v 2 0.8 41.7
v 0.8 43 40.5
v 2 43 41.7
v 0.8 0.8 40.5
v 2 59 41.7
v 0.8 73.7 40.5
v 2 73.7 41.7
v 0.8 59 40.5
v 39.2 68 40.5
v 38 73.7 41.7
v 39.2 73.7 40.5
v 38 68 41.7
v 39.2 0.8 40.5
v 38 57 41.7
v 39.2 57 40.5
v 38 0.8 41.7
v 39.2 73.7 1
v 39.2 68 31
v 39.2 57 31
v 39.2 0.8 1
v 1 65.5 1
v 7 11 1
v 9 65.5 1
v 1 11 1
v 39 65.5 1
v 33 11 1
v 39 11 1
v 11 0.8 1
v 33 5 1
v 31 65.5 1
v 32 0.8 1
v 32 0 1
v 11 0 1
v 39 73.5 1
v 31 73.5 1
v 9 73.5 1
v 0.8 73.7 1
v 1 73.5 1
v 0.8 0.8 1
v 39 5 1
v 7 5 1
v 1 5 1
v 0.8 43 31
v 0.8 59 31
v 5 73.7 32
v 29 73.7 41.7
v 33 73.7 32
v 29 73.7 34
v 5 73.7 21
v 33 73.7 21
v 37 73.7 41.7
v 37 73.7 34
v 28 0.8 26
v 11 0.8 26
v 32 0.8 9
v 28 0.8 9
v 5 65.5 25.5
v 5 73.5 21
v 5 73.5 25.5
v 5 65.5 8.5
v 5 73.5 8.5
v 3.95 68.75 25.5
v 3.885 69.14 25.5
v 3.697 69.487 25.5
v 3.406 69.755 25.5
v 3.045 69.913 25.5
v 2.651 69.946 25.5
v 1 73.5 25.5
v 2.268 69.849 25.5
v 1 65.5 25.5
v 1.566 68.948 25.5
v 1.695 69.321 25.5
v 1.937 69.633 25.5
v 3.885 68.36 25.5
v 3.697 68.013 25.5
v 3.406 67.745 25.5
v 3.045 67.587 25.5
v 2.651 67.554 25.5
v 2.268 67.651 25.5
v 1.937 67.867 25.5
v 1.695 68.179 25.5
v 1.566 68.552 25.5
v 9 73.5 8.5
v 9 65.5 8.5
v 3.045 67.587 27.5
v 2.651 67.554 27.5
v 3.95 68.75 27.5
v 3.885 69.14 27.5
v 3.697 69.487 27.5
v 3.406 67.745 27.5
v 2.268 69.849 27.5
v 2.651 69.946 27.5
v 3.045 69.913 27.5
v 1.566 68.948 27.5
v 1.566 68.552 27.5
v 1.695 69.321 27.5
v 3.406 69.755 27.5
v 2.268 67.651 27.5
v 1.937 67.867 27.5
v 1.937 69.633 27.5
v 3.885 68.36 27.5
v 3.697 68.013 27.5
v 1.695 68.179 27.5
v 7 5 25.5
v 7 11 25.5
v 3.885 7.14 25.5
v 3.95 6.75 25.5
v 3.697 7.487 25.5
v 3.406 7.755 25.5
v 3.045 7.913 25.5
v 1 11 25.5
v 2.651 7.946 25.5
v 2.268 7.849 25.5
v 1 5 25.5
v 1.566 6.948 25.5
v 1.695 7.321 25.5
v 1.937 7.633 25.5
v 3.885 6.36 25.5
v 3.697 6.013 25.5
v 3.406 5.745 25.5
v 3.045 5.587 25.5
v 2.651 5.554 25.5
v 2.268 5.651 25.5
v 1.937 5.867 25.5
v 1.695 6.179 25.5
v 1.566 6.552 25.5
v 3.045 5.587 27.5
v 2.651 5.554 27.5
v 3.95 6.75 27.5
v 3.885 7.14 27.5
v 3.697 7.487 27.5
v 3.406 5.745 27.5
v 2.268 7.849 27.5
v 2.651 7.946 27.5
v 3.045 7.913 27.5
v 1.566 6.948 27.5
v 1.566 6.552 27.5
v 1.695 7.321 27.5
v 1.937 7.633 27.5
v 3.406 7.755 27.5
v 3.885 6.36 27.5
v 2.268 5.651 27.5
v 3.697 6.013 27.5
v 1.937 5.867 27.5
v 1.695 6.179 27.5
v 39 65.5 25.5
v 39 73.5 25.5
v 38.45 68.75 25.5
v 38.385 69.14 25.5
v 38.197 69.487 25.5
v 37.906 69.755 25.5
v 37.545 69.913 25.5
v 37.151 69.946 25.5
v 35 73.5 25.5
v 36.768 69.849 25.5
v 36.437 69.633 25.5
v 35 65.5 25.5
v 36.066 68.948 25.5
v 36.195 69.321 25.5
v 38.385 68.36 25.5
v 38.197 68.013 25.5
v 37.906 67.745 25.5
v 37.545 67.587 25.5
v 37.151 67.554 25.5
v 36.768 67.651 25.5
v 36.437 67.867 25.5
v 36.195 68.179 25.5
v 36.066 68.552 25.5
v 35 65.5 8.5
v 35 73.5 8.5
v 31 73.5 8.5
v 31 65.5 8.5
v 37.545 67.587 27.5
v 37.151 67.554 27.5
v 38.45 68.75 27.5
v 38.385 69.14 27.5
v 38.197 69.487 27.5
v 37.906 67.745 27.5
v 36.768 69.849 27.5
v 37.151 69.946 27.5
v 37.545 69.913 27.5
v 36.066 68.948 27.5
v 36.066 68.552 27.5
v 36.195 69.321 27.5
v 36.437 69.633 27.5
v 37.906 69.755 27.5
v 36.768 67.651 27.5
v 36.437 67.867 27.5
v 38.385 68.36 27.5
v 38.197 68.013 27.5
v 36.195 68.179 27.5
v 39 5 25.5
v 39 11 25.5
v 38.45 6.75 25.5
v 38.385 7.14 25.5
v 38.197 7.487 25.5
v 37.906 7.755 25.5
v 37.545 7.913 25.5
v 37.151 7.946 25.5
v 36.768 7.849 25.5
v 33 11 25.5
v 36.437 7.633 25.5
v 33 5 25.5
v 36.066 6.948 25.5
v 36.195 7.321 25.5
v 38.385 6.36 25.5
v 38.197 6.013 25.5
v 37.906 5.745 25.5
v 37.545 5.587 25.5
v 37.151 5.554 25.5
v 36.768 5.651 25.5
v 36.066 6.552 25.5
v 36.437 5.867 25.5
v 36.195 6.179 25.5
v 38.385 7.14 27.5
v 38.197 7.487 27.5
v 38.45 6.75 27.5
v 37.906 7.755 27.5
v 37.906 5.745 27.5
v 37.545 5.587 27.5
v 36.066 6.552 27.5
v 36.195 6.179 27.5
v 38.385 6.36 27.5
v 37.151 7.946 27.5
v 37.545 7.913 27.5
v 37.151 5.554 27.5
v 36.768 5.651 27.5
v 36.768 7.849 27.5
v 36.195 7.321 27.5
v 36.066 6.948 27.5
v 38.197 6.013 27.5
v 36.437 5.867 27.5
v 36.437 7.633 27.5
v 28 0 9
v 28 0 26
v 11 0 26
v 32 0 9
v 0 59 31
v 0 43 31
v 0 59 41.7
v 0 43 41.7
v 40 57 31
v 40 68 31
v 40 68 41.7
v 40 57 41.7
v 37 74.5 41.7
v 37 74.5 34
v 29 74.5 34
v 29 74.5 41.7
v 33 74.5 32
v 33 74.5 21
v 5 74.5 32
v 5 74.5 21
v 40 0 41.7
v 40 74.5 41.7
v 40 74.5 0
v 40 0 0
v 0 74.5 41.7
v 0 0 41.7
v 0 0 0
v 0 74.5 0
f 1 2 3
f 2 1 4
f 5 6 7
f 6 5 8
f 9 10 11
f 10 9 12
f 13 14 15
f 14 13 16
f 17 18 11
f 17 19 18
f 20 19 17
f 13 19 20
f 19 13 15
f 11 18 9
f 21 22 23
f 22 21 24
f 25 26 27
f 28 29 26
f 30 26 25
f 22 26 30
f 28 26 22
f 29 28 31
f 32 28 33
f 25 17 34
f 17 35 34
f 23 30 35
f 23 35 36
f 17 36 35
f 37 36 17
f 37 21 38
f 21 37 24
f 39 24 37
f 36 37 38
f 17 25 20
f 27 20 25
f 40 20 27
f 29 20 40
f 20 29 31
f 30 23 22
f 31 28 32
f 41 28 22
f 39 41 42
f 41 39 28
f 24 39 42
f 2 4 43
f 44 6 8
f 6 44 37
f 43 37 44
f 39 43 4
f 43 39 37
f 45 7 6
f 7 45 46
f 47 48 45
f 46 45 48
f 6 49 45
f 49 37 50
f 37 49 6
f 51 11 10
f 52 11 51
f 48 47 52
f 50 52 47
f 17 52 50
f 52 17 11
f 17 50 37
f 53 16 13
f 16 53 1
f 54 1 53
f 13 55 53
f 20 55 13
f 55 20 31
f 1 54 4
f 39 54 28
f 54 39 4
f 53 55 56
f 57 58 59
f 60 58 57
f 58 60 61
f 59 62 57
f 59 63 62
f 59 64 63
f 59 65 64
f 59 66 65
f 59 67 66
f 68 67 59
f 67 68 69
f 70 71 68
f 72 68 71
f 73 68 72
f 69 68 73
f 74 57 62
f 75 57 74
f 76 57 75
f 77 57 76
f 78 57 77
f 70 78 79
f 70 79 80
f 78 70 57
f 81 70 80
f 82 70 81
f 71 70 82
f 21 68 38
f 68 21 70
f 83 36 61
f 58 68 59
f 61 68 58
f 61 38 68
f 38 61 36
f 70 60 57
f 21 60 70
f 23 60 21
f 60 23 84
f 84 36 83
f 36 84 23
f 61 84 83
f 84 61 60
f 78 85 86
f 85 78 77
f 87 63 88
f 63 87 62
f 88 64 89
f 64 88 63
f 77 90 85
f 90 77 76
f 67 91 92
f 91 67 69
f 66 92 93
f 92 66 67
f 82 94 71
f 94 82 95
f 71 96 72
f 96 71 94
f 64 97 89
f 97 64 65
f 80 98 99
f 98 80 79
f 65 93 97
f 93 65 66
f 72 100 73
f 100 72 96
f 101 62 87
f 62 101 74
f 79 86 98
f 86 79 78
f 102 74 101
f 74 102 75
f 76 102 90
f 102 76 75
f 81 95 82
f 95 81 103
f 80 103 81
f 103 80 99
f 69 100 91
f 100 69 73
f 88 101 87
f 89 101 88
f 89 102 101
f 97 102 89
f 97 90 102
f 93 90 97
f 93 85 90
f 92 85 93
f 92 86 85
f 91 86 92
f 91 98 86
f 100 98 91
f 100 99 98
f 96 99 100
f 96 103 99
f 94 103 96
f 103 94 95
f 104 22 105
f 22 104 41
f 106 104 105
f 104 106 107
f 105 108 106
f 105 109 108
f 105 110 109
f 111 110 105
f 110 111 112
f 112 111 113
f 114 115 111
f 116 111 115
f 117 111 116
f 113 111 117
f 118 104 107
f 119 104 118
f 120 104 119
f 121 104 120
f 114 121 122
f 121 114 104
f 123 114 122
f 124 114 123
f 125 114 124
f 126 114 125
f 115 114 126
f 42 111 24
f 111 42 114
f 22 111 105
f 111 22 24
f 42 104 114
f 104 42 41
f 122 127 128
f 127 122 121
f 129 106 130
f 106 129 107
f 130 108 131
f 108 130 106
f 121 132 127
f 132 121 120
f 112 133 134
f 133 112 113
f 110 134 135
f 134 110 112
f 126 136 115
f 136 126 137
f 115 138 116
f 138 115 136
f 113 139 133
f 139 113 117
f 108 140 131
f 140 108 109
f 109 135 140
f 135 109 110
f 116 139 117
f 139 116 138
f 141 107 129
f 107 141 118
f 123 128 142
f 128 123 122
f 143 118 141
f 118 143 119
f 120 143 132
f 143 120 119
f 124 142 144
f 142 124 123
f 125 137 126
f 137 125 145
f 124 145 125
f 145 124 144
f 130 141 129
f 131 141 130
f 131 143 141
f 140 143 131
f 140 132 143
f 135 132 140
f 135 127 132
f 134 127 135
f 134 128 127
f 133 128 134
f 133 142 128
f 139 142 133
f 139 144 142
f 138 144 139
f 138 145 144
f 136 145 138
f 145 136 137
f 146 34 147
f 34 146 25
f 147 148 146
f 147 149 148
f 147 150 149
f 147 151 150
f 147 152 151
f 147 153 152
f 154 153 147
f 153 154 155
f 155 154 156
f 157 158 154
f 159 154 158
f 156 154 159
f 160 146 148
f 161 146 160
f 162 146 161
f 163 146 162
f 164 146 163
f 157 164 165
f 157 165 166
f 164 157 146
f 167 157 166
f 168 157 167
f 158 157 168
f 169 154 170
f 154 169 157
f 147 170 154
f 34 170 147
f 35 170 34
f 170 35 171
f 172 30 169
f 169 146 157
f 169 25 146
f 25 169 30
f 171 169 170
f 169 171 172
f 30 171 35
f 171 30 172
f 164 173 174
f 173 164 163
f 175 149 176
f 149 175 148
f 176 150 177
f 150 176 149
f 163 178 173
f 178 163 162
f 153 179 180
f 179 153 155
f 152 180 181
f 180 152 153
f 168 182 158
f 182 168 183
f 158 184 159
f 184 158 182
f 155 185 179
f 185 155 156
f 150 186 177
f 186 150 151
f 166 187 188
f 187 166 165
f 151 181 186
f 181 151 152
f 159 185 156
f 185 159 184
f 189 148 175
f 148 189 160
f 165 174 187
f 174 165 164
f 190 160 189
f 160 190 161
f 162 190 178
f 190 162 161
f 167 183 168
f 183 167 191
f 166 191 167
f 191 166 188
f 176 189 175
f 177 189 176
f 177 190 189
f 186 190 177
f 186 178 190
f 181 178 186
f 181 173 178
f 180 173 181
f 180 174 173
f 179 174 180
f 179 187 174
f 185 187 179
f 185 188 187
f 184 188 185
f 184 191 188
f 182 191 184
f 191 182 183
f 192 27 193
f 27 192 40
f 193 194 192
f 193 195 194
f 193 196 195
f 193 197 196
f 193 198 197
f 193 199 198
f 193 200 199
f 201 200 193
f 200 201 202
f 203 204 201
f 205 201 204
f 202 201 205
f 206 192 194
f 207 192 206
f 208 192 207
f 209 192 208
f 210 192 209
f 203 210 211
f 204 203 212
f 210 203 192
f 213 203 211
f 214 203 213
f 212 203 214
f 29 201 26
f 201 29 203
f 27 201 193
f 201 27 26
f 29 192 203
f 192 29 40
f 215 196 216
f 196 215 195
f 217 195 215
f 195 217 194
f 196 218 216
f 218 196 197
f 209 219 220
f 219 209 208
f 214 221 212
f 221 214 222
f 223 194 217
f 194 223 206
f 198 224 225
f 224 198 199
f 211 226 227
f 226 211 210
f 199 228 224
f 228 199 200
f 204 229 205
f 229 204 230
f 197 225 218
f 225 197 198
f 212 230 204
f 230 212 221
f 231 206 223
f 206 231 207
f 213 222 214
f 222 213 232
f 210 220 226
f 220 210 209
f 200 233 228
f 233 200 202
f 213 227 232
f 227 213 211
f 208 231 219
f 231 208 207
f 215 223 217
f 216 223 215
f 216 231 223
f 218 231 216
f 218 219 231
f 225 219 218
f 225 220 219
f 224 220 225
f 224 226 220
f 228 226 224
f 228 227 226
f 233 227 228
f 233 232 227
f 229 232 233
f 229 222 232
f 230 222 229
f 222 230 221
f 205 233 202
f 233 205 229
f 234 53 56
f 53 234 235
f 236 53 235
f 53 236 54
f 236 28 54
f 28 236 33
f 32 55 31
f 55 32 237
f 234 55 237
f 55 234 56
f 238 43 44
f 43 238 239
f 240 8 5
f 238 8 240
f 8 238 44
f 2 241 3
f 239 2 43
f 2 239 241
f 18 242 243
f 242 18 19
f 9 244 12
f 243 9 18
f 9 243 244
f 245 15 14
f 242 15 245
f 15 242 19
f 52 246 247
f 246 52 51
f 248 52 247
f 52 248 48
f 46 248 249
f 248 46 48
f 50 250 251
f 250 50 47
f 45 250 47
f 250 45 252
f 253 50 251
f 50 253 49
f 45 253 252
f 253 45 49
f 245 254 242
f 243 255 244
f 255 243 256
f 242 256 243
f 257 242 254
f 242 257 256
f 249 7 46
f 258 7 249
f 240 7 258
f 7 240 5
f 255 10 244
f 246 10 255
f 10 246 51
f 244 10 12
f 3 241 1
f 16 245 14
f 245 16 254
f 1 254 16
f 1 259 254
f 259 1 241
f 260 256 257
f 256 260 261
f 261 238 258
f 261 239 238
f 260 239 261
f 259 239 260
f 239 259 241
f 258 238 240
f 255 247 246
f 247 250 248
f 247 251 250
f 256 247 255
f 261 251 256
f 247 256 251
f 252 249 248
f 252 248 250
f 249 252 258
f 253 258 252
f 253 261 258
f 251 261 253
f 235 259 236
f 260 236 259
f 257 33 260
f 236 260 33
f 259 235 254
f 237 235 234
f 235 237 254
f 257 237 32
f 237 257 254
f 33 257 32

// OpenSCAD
// SPDX-FileCopyrightText: 2023 Carnegie Mellon University - Satyalab
//
// SPDX-License-Identifier: GPL-2.0-only

$fa = 1;
$fs = 0.4;

tol = 0.2;

voxl_width = 38;
voxl_length = 72.5; //86
voxl_height = 40.5;
pedestal_height = 25.5;
post_height = 2;

wall = 2;

module voxl(w, h, d) {
    cutout = d+2;
    difference() {
        // main shape
        translate([-tol, -tol, 0])
        cube([w+2*tol, h+2*tol, cutout]);
        // mounting holes
        post = 2.6 - tol;
        
        //translate([1.75, h-6, -1]) cylinder(h=post_height, d=post);
        //translate([1.75, 4, -1]) cylinder(h=post_height, d=post);
        //translate([w-1.75, h-6, -1]) cylinder(h=post_height, d=post);
        //translate([w-1.75, 4, -1]) cylinder(h=post_height, d=post);
        translate([0, h-8, -1]) cube([4,8,pedestal_height]) ;
        translate([0, h-8, -1]) cube([8,8,pedestal_height/3]) ;
        translate([1.75, h-4.75, pedestal_height-1]) cylinder(h=post_height, d=post);
        
        translate([0, 4, -1]) cube([6,6,pedestal_height]);
        translate([1.75, 5.75, pedestal_height-1]) cylinder(h=post_height, d=post);
        
        translate([w-4, h-8, -1]) cube([4,8,pedestal_height]);
        translate([w-8, h-8, -1]) cube([8,8,pedestal_height/3]);
        translate([w-1.75, h-4.75, pedestal_height-1]) cylinder(h=post_height, d=post);
        
        translate([w-6, 4, -1]) cube([6,6,pedestal_height]);
        translate([w-1.75, 5.75, pedestal_height-1]) cylinder(h=post_height, d=post);
        // fillet at top
        translate([0, -wall, d-1])
        union() {
            translate([-tol, 0, 0])
            rotate([0, -45, 0])
            cube([4, h+wall*3, 4]);
            translate([w+tol, 0, 0])
            rotate([0, -45, 0])
            cube([4, h+wall*3, 4]);
        }
    }
    // battery slot
    translate([10, -2, 0]) cube([17, 5.5, 25]);
    // notch for battery cable
    translate([27, -2, 0]) cube([4, 5.5, 8]);
    // usb cable for wifi adapter
    translate([-2, 42, 30]) cube([5.5, 16, 11]);
    // holes for weight reduction and airflow
//    translate([-3, 62, 25]) sphere(r=4);
//    translate([-3, 62, 15]) sphere(r=4);
//    translate([-3, 62, 5]) sphere(r=4);
//
//    translate([-3, 52, 25]) sphere(r=4);
//    translate([-3, 52, 15]) sphere(r=4);
//    translate([-3, 52, 5]) sphere(r=4);
//
//    translate([-3, 42, 25]) sphere(r=4);
//    translate([-3, 42, 15]) sphere(r=4);
//    translate([-3, 42, 5]) sphere(r=4);
//    
//    translate([-3, 32, 35]) sphere(r=4);
//    translate([-3, 32, 25]) sphere(r=4);
//    translate([-3, 32, 15]) sphere(r=4);
//    translate([-3, 32, 5]) sphere(r=4);
//    translate([-3, 22, 35]) sphere(r=4);
//    translate([-3, 22, 25]) sphere(r=4);
//    translate([-3, 22, 15]) sphere(r=4);
//    translate([-3, 22, 5]) sphere(r=4);
//    translate([-3, 12, 35]) sphere(r=4);
//    translate([-3, 12, 25]) sphere(r=4);
//    translate([-3, 12, 15]) sphere(r=4);
//    translate([-3, 12, 5]) sphere(r=4);
    
    
//    translate([40, 62, 25]) sphere(r=4);
//    translate([40, 62, 15]) sphere(r=4);
//    translate([40, 62, 5]) sphere(r=4);
//    translate([40, 52, 25]) sphere(r=4);
//    translate([40, 52, 15]) sphere(r=4);
//    translate([40, 52, 5]) sphere(r=4);
//    translate([40, 42, 35]) sphere(r=4);
//    translate([40, 42, 25]) sphere(r=4);
//    translate([40, 42, 15]) sphere(r=4);
//    translate([40, 42, 5]) sphere(r=4);
//    translate([40, 32, 35]) sphere(r=4);
//    translate([40, 32, 25]) sphere(r=4);
//    translate([40, 32, 15]) sphere(r=4);
//    translate([40, 32, 5]) sphere(r=4);
//    translate([40, 22, 35]) sphere(r=4);
//    translate([40, 22, 25]) sphere(r=4);
//    translate([40, 22, 15]) sphere(r=4);
//    translate([40, 22, 5]) sphere(r=4);
//    translate([40, 12, 35]) sphere(r=4);
//    translate([40, 12, 25]) sphere(r=4);
//    translate([40, 12, 15]) sphere(r=4);
//    translate([40, 12, 5]) sphere(r=4);
    // antenna window #1
    translate([35, 56, 30]) cube([5.5, 11, 11]);
    // antenna window #2
    translate([28, voxl_length, 33]) cube([8, 5.5, 8]);
    //power/usbc window
    translate([4, voxl_length, 20]) cube([28, 5.5, 11]);
}

module case() {
    difference() {
        cube([voxl_width+wall, voxl_length+wall, voxl_height+1+tol]);
        translate([wall/2, wall/2, wall/2])
        voxl(w=voxl_width, h=voxl_length, d=voxl_height);
    }
}

module lid() {
    cube([voxl_width+wall, voxl_length+wall, wall/4]);
    difference() {
        translate([wall/2, wall/2, 0])
        cube([voxl_width, voxl_length, wall]);
        translate([wall*2, wall, wall/4])
        cube([voxl_width-wall*3, voxl_length-wall, wall+1]);

        // fillet
        translate([0, -wall, 0])
        union() {
            translate([wall/2, 0, wall])
            rotate([0, -135, 0])
            translate([-4, 0, 0])
            cube([4, voxl_length+wall*3, 4]);
            translate([voxl_width+wall/2, 0, wall])
            rotate([0, 135, 0])
            cube([4, voxl_length+wall*3, 4]);
        }
    }
}

case();
//lid();
